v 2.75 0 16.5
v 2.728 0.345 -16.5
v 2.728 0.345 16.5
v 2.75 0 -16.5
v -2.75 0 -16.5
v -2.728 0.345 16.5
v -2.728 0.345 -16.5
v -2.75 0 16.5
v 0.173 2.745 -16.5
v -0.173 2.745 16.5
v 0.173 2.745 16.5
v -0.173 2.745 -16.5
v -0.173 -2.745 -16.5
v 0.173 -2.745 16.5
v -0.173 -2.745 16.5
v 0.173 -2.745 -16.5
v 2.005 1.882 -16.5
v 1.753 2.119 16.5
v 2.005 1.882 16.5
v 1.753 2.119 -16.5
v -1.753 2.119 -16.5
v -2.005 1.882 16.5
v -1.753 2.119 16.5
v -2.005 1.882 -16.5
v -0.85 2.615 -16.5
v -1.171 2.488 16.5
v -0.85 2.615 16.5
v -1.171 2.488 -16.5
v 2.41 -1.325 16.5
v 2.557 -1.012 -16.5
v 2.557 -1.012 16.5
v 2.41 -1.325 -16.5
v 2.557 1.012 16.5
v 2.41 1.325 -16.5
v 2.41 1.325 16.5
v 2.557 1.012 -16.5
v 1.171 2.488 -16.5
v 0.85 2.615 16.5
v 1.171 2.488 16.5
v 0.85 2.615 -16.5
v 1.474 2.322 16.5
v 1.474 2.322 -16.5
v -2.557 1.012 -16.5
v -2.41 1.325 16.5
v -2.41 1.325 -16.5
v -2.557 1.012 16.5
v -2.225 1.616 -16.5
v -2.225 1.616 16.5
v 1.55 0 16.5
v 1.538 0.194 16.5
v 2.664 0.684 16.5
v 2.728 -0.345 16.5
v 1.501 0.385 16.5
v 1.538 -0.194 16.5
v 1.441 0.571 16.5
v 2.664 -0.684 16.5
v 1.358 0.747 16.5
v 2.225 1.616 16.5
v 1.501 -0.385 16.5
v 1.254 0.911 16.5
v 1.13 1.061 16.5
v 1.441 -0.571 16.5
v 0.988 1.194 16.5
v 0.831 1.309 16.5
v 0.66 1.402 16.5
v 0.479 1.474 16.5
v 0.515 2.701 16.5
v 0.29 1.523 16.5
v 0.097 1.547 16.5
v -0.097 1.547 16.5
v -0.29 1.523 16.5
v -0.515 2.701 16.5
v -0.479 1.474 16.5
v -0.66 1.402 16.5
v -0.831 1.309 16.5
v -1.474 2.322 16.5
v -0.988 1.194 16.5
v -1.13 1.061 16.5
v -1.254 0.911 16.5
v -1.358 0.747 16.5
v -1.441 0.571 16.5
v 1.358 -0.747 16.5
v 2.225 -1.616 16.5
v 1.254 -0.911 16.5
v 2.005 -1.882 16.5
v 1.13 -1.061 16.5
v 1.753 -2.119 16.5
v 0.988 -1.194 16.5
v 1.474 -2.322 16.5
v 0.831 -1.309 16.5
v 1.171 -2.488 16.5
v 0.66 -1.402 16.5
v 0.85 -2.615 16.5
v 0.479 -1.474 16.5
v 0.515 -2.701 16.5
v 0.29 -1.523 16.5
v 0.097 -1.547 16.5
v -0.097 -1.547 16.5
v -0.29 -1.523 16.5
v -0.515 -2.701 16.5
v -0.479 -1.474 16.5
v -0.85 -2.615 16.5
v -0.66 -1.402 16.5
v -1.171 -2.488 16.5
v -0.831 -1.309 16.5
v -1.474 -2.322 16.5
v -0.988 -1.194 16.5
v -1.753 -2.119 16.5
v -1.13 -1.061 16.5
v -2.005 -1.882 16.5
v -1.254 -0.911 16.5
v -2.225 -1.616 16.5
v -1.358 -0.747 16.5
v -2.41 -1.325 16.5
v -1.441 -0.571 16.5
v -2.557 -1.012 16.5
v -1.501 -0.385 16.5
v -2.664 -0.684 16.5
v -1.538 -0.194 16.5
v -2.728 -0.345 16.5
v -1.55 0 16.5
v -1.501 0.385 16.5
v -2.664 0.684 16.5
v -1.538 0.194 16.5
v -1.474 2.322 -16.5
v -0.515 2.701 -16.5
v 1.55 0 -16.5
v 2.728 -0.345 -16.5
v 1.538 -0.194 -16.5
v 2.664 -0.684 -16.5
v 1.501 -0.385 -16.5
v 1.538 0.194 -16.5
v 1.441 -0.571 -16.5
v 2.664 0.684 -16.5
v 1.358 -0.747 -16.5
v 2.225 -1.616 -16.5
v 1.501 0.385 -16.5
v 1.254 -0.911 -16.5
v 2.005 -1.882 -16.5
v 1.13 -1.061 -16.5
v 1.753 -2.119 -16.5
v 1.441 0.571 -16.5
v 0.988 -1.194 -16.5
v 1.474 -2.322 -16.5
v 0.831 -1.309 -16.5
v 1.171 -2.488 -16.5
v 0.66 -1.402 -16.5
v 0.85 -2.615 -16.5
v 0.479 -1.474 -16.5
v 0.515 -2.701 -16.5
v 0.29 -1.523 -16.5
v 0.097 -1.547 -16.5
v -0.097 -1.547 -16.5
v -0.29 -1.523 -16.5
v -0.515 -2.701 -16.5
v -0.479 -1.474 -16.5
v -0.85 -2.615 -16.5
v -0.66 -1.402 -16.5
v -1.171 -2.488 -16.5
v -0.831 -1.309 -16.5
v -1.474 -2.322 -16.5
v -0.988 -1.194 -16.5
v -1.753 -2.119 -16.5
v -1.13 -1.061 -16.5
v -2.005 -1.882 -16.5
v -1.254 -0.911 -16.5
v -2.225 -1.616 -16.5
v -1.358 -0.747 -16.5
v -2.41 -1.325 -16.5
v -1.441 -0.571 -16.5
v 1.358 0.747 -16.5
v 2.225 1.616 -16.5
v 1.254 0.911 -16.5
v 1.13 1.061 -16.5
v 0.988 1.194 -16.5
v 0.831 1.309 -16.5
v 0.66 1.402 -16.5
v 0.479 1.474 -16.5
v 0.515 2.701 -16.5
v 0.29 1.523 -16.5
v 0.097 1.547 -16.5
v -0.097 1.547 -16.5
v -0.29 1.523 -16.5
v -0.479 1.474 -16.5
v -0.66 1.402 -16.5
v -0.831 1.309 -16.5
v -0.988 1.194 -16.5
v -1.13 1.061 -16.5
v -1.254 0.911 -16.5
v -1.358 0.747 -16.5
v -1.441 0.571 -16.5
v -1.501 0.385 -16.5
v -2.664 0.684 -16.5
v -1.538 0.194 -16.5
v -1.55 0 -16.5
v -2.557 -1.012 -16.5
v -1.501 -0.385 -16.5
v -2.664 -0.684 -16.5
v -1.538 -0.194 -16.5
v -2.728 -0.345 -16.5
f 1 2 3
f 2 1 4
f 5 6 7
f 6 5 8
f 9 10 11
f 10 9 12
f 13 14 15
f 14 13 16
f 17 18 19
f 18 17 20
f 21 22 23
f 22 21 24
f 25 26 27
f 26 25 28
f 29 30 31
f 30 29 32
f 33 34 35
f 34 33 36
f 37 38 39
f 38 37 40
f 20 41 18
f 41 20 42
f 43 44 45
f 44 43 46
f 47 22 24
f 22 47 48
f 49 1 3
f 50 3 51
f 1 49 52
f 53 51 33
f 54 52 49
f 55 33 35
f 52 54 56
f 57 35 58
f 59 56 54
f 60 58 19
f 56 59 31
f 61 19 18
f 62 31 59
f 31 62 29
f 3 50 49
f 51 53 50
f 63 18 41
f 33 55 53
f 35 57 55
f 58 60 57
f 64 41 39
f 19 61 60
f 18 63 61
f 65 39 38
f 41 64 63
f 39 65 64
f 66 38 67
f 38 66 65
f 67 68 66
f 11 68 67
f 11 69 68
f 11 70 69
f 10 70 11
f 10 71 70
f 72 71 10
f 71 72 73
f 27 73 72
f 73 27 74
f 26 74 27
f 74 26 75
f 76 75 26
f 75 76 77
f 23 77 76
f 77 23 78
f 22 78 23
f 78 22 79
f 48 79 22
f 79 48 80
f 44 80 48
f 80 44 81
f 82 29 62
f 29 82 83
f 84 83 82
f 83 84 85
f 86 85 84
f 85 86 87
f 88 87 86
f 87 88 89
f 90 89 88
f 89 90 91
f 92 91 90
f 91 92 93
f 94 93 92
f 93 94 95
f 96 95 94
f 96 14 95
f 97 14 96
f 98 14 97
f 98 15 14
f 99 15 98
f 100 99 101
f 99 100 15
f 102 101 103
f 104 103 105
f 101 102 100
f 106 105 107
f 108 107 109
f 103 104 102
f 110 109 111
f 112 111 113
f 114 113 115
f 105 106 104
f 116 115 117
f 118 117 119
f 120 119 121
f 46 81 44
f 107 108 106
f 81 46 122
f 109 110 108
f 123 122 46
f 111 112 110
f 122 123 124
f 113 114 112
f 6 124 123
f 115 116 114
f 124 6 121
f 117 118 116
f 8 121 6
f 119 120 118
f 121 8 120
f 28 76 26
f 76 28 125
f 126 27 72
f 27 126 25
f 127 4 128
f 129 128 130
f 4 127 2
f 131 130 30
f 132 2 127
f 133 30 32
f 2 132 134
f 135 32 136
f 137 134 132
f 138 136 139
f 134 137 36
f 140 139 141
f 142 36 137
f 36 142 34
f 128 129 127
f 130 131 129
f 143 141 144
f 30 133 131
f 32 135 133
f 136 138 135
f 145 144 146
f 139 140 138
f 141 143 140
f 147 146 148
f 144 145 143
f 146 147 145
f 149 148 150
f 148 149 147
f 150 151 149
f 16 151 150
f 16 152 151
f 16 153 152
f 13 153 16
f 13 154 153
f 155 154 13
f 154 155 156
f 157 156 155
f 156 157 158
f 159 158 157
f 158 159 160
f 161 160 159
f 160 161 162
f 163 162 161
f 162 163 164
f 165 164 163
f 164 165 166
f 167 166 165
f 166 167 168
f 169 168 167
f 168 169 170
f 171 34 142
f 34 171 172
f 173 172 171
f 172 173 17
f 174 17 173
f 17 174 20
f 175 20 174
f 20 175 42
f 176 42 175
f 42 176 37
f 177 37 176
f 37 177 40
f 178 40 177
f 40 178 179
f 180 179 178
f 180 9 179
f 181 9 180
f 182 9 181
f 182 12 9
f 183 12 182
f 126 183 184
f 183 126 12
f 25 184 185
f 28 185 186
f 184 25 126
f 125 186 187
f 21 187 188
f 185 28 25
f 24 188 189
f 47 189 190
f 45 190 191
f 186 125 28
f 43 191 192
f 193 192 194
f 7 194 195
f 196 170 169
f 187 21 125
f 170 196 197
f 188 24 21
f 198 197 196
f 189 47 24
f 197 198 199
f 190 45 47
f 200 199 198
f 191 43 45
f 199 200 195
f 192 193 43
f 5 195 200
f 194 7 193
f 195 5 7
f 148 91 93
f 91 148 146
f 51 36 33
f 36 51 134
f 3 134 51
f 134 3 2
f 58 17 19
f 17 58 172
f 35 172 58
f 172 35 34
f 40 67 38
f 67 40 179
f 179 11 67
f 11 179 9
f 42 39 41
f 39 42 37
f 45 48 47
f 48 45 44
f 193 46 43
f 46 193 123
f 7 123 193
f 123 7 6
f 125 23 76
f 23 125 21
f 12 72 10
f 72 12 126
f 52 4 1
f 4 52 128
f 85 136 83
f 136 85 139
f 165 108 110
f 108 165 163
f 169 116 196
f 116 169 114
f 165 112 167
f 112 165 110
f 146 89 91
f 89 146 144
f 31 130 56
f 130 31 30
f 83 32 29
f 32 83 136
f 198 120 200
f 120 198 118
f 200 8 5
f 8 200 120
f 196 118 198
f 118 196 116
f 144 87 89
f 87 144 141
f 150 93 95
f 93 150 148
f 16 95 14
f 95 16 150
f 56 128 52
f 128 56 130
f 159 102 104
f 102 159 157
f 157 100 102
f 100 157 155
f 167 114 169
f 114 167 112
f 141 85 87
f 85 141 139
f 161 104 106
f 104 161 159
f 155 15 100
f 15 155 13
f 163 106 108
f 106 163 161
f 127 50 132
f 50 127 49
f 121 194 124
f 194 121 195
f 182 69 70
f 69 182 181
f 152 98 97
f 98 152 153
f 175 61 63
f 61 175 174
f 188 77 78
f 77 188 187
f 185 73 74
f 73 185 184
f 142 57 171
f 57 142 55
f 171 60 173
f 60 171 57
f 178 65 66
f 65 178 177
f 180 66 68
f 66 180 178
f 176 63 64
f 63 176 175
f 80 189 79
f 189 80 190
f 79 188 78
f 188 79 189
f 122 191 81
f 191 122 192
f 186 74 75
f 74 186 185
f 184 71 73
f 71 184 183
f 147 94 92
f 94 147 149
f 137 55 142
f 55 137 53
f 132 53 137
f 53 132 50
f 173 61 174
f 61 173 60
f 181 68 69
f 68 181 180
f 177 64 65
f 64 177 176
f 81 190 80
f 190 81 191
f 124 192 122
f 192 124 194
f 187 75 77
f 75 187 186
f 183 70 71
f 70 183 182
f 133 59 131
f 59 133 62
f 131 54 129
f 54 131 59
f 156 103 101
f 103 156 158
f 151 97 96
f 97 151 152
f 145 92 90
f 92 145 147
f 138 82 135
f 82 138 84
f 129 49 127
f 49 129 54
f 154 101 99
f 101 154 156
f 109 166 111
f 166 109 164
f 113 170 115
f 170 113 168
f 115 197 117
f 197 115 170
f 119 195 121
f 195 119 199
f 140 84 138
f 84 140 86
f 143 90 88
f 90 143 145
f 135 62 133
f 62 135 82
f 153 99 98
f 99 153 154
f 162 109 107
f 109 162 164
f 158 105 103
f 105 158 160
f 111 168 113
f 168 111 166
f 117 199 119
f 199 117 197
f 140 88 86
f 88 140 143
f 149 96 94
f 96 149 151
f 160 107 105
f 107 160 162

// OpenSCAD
$fn = 50;


difference() {
	union() {
		translate(v = [0, 0, -16.5000000000]) {
			cylinder(h = 33, r = 2.7500000000);
		}
	}
	union() {
		translate(v = [0, 0, -100.0000000000]) {
			cylinder(h = 200, r = 1.5500000000);
		}
	}
}
